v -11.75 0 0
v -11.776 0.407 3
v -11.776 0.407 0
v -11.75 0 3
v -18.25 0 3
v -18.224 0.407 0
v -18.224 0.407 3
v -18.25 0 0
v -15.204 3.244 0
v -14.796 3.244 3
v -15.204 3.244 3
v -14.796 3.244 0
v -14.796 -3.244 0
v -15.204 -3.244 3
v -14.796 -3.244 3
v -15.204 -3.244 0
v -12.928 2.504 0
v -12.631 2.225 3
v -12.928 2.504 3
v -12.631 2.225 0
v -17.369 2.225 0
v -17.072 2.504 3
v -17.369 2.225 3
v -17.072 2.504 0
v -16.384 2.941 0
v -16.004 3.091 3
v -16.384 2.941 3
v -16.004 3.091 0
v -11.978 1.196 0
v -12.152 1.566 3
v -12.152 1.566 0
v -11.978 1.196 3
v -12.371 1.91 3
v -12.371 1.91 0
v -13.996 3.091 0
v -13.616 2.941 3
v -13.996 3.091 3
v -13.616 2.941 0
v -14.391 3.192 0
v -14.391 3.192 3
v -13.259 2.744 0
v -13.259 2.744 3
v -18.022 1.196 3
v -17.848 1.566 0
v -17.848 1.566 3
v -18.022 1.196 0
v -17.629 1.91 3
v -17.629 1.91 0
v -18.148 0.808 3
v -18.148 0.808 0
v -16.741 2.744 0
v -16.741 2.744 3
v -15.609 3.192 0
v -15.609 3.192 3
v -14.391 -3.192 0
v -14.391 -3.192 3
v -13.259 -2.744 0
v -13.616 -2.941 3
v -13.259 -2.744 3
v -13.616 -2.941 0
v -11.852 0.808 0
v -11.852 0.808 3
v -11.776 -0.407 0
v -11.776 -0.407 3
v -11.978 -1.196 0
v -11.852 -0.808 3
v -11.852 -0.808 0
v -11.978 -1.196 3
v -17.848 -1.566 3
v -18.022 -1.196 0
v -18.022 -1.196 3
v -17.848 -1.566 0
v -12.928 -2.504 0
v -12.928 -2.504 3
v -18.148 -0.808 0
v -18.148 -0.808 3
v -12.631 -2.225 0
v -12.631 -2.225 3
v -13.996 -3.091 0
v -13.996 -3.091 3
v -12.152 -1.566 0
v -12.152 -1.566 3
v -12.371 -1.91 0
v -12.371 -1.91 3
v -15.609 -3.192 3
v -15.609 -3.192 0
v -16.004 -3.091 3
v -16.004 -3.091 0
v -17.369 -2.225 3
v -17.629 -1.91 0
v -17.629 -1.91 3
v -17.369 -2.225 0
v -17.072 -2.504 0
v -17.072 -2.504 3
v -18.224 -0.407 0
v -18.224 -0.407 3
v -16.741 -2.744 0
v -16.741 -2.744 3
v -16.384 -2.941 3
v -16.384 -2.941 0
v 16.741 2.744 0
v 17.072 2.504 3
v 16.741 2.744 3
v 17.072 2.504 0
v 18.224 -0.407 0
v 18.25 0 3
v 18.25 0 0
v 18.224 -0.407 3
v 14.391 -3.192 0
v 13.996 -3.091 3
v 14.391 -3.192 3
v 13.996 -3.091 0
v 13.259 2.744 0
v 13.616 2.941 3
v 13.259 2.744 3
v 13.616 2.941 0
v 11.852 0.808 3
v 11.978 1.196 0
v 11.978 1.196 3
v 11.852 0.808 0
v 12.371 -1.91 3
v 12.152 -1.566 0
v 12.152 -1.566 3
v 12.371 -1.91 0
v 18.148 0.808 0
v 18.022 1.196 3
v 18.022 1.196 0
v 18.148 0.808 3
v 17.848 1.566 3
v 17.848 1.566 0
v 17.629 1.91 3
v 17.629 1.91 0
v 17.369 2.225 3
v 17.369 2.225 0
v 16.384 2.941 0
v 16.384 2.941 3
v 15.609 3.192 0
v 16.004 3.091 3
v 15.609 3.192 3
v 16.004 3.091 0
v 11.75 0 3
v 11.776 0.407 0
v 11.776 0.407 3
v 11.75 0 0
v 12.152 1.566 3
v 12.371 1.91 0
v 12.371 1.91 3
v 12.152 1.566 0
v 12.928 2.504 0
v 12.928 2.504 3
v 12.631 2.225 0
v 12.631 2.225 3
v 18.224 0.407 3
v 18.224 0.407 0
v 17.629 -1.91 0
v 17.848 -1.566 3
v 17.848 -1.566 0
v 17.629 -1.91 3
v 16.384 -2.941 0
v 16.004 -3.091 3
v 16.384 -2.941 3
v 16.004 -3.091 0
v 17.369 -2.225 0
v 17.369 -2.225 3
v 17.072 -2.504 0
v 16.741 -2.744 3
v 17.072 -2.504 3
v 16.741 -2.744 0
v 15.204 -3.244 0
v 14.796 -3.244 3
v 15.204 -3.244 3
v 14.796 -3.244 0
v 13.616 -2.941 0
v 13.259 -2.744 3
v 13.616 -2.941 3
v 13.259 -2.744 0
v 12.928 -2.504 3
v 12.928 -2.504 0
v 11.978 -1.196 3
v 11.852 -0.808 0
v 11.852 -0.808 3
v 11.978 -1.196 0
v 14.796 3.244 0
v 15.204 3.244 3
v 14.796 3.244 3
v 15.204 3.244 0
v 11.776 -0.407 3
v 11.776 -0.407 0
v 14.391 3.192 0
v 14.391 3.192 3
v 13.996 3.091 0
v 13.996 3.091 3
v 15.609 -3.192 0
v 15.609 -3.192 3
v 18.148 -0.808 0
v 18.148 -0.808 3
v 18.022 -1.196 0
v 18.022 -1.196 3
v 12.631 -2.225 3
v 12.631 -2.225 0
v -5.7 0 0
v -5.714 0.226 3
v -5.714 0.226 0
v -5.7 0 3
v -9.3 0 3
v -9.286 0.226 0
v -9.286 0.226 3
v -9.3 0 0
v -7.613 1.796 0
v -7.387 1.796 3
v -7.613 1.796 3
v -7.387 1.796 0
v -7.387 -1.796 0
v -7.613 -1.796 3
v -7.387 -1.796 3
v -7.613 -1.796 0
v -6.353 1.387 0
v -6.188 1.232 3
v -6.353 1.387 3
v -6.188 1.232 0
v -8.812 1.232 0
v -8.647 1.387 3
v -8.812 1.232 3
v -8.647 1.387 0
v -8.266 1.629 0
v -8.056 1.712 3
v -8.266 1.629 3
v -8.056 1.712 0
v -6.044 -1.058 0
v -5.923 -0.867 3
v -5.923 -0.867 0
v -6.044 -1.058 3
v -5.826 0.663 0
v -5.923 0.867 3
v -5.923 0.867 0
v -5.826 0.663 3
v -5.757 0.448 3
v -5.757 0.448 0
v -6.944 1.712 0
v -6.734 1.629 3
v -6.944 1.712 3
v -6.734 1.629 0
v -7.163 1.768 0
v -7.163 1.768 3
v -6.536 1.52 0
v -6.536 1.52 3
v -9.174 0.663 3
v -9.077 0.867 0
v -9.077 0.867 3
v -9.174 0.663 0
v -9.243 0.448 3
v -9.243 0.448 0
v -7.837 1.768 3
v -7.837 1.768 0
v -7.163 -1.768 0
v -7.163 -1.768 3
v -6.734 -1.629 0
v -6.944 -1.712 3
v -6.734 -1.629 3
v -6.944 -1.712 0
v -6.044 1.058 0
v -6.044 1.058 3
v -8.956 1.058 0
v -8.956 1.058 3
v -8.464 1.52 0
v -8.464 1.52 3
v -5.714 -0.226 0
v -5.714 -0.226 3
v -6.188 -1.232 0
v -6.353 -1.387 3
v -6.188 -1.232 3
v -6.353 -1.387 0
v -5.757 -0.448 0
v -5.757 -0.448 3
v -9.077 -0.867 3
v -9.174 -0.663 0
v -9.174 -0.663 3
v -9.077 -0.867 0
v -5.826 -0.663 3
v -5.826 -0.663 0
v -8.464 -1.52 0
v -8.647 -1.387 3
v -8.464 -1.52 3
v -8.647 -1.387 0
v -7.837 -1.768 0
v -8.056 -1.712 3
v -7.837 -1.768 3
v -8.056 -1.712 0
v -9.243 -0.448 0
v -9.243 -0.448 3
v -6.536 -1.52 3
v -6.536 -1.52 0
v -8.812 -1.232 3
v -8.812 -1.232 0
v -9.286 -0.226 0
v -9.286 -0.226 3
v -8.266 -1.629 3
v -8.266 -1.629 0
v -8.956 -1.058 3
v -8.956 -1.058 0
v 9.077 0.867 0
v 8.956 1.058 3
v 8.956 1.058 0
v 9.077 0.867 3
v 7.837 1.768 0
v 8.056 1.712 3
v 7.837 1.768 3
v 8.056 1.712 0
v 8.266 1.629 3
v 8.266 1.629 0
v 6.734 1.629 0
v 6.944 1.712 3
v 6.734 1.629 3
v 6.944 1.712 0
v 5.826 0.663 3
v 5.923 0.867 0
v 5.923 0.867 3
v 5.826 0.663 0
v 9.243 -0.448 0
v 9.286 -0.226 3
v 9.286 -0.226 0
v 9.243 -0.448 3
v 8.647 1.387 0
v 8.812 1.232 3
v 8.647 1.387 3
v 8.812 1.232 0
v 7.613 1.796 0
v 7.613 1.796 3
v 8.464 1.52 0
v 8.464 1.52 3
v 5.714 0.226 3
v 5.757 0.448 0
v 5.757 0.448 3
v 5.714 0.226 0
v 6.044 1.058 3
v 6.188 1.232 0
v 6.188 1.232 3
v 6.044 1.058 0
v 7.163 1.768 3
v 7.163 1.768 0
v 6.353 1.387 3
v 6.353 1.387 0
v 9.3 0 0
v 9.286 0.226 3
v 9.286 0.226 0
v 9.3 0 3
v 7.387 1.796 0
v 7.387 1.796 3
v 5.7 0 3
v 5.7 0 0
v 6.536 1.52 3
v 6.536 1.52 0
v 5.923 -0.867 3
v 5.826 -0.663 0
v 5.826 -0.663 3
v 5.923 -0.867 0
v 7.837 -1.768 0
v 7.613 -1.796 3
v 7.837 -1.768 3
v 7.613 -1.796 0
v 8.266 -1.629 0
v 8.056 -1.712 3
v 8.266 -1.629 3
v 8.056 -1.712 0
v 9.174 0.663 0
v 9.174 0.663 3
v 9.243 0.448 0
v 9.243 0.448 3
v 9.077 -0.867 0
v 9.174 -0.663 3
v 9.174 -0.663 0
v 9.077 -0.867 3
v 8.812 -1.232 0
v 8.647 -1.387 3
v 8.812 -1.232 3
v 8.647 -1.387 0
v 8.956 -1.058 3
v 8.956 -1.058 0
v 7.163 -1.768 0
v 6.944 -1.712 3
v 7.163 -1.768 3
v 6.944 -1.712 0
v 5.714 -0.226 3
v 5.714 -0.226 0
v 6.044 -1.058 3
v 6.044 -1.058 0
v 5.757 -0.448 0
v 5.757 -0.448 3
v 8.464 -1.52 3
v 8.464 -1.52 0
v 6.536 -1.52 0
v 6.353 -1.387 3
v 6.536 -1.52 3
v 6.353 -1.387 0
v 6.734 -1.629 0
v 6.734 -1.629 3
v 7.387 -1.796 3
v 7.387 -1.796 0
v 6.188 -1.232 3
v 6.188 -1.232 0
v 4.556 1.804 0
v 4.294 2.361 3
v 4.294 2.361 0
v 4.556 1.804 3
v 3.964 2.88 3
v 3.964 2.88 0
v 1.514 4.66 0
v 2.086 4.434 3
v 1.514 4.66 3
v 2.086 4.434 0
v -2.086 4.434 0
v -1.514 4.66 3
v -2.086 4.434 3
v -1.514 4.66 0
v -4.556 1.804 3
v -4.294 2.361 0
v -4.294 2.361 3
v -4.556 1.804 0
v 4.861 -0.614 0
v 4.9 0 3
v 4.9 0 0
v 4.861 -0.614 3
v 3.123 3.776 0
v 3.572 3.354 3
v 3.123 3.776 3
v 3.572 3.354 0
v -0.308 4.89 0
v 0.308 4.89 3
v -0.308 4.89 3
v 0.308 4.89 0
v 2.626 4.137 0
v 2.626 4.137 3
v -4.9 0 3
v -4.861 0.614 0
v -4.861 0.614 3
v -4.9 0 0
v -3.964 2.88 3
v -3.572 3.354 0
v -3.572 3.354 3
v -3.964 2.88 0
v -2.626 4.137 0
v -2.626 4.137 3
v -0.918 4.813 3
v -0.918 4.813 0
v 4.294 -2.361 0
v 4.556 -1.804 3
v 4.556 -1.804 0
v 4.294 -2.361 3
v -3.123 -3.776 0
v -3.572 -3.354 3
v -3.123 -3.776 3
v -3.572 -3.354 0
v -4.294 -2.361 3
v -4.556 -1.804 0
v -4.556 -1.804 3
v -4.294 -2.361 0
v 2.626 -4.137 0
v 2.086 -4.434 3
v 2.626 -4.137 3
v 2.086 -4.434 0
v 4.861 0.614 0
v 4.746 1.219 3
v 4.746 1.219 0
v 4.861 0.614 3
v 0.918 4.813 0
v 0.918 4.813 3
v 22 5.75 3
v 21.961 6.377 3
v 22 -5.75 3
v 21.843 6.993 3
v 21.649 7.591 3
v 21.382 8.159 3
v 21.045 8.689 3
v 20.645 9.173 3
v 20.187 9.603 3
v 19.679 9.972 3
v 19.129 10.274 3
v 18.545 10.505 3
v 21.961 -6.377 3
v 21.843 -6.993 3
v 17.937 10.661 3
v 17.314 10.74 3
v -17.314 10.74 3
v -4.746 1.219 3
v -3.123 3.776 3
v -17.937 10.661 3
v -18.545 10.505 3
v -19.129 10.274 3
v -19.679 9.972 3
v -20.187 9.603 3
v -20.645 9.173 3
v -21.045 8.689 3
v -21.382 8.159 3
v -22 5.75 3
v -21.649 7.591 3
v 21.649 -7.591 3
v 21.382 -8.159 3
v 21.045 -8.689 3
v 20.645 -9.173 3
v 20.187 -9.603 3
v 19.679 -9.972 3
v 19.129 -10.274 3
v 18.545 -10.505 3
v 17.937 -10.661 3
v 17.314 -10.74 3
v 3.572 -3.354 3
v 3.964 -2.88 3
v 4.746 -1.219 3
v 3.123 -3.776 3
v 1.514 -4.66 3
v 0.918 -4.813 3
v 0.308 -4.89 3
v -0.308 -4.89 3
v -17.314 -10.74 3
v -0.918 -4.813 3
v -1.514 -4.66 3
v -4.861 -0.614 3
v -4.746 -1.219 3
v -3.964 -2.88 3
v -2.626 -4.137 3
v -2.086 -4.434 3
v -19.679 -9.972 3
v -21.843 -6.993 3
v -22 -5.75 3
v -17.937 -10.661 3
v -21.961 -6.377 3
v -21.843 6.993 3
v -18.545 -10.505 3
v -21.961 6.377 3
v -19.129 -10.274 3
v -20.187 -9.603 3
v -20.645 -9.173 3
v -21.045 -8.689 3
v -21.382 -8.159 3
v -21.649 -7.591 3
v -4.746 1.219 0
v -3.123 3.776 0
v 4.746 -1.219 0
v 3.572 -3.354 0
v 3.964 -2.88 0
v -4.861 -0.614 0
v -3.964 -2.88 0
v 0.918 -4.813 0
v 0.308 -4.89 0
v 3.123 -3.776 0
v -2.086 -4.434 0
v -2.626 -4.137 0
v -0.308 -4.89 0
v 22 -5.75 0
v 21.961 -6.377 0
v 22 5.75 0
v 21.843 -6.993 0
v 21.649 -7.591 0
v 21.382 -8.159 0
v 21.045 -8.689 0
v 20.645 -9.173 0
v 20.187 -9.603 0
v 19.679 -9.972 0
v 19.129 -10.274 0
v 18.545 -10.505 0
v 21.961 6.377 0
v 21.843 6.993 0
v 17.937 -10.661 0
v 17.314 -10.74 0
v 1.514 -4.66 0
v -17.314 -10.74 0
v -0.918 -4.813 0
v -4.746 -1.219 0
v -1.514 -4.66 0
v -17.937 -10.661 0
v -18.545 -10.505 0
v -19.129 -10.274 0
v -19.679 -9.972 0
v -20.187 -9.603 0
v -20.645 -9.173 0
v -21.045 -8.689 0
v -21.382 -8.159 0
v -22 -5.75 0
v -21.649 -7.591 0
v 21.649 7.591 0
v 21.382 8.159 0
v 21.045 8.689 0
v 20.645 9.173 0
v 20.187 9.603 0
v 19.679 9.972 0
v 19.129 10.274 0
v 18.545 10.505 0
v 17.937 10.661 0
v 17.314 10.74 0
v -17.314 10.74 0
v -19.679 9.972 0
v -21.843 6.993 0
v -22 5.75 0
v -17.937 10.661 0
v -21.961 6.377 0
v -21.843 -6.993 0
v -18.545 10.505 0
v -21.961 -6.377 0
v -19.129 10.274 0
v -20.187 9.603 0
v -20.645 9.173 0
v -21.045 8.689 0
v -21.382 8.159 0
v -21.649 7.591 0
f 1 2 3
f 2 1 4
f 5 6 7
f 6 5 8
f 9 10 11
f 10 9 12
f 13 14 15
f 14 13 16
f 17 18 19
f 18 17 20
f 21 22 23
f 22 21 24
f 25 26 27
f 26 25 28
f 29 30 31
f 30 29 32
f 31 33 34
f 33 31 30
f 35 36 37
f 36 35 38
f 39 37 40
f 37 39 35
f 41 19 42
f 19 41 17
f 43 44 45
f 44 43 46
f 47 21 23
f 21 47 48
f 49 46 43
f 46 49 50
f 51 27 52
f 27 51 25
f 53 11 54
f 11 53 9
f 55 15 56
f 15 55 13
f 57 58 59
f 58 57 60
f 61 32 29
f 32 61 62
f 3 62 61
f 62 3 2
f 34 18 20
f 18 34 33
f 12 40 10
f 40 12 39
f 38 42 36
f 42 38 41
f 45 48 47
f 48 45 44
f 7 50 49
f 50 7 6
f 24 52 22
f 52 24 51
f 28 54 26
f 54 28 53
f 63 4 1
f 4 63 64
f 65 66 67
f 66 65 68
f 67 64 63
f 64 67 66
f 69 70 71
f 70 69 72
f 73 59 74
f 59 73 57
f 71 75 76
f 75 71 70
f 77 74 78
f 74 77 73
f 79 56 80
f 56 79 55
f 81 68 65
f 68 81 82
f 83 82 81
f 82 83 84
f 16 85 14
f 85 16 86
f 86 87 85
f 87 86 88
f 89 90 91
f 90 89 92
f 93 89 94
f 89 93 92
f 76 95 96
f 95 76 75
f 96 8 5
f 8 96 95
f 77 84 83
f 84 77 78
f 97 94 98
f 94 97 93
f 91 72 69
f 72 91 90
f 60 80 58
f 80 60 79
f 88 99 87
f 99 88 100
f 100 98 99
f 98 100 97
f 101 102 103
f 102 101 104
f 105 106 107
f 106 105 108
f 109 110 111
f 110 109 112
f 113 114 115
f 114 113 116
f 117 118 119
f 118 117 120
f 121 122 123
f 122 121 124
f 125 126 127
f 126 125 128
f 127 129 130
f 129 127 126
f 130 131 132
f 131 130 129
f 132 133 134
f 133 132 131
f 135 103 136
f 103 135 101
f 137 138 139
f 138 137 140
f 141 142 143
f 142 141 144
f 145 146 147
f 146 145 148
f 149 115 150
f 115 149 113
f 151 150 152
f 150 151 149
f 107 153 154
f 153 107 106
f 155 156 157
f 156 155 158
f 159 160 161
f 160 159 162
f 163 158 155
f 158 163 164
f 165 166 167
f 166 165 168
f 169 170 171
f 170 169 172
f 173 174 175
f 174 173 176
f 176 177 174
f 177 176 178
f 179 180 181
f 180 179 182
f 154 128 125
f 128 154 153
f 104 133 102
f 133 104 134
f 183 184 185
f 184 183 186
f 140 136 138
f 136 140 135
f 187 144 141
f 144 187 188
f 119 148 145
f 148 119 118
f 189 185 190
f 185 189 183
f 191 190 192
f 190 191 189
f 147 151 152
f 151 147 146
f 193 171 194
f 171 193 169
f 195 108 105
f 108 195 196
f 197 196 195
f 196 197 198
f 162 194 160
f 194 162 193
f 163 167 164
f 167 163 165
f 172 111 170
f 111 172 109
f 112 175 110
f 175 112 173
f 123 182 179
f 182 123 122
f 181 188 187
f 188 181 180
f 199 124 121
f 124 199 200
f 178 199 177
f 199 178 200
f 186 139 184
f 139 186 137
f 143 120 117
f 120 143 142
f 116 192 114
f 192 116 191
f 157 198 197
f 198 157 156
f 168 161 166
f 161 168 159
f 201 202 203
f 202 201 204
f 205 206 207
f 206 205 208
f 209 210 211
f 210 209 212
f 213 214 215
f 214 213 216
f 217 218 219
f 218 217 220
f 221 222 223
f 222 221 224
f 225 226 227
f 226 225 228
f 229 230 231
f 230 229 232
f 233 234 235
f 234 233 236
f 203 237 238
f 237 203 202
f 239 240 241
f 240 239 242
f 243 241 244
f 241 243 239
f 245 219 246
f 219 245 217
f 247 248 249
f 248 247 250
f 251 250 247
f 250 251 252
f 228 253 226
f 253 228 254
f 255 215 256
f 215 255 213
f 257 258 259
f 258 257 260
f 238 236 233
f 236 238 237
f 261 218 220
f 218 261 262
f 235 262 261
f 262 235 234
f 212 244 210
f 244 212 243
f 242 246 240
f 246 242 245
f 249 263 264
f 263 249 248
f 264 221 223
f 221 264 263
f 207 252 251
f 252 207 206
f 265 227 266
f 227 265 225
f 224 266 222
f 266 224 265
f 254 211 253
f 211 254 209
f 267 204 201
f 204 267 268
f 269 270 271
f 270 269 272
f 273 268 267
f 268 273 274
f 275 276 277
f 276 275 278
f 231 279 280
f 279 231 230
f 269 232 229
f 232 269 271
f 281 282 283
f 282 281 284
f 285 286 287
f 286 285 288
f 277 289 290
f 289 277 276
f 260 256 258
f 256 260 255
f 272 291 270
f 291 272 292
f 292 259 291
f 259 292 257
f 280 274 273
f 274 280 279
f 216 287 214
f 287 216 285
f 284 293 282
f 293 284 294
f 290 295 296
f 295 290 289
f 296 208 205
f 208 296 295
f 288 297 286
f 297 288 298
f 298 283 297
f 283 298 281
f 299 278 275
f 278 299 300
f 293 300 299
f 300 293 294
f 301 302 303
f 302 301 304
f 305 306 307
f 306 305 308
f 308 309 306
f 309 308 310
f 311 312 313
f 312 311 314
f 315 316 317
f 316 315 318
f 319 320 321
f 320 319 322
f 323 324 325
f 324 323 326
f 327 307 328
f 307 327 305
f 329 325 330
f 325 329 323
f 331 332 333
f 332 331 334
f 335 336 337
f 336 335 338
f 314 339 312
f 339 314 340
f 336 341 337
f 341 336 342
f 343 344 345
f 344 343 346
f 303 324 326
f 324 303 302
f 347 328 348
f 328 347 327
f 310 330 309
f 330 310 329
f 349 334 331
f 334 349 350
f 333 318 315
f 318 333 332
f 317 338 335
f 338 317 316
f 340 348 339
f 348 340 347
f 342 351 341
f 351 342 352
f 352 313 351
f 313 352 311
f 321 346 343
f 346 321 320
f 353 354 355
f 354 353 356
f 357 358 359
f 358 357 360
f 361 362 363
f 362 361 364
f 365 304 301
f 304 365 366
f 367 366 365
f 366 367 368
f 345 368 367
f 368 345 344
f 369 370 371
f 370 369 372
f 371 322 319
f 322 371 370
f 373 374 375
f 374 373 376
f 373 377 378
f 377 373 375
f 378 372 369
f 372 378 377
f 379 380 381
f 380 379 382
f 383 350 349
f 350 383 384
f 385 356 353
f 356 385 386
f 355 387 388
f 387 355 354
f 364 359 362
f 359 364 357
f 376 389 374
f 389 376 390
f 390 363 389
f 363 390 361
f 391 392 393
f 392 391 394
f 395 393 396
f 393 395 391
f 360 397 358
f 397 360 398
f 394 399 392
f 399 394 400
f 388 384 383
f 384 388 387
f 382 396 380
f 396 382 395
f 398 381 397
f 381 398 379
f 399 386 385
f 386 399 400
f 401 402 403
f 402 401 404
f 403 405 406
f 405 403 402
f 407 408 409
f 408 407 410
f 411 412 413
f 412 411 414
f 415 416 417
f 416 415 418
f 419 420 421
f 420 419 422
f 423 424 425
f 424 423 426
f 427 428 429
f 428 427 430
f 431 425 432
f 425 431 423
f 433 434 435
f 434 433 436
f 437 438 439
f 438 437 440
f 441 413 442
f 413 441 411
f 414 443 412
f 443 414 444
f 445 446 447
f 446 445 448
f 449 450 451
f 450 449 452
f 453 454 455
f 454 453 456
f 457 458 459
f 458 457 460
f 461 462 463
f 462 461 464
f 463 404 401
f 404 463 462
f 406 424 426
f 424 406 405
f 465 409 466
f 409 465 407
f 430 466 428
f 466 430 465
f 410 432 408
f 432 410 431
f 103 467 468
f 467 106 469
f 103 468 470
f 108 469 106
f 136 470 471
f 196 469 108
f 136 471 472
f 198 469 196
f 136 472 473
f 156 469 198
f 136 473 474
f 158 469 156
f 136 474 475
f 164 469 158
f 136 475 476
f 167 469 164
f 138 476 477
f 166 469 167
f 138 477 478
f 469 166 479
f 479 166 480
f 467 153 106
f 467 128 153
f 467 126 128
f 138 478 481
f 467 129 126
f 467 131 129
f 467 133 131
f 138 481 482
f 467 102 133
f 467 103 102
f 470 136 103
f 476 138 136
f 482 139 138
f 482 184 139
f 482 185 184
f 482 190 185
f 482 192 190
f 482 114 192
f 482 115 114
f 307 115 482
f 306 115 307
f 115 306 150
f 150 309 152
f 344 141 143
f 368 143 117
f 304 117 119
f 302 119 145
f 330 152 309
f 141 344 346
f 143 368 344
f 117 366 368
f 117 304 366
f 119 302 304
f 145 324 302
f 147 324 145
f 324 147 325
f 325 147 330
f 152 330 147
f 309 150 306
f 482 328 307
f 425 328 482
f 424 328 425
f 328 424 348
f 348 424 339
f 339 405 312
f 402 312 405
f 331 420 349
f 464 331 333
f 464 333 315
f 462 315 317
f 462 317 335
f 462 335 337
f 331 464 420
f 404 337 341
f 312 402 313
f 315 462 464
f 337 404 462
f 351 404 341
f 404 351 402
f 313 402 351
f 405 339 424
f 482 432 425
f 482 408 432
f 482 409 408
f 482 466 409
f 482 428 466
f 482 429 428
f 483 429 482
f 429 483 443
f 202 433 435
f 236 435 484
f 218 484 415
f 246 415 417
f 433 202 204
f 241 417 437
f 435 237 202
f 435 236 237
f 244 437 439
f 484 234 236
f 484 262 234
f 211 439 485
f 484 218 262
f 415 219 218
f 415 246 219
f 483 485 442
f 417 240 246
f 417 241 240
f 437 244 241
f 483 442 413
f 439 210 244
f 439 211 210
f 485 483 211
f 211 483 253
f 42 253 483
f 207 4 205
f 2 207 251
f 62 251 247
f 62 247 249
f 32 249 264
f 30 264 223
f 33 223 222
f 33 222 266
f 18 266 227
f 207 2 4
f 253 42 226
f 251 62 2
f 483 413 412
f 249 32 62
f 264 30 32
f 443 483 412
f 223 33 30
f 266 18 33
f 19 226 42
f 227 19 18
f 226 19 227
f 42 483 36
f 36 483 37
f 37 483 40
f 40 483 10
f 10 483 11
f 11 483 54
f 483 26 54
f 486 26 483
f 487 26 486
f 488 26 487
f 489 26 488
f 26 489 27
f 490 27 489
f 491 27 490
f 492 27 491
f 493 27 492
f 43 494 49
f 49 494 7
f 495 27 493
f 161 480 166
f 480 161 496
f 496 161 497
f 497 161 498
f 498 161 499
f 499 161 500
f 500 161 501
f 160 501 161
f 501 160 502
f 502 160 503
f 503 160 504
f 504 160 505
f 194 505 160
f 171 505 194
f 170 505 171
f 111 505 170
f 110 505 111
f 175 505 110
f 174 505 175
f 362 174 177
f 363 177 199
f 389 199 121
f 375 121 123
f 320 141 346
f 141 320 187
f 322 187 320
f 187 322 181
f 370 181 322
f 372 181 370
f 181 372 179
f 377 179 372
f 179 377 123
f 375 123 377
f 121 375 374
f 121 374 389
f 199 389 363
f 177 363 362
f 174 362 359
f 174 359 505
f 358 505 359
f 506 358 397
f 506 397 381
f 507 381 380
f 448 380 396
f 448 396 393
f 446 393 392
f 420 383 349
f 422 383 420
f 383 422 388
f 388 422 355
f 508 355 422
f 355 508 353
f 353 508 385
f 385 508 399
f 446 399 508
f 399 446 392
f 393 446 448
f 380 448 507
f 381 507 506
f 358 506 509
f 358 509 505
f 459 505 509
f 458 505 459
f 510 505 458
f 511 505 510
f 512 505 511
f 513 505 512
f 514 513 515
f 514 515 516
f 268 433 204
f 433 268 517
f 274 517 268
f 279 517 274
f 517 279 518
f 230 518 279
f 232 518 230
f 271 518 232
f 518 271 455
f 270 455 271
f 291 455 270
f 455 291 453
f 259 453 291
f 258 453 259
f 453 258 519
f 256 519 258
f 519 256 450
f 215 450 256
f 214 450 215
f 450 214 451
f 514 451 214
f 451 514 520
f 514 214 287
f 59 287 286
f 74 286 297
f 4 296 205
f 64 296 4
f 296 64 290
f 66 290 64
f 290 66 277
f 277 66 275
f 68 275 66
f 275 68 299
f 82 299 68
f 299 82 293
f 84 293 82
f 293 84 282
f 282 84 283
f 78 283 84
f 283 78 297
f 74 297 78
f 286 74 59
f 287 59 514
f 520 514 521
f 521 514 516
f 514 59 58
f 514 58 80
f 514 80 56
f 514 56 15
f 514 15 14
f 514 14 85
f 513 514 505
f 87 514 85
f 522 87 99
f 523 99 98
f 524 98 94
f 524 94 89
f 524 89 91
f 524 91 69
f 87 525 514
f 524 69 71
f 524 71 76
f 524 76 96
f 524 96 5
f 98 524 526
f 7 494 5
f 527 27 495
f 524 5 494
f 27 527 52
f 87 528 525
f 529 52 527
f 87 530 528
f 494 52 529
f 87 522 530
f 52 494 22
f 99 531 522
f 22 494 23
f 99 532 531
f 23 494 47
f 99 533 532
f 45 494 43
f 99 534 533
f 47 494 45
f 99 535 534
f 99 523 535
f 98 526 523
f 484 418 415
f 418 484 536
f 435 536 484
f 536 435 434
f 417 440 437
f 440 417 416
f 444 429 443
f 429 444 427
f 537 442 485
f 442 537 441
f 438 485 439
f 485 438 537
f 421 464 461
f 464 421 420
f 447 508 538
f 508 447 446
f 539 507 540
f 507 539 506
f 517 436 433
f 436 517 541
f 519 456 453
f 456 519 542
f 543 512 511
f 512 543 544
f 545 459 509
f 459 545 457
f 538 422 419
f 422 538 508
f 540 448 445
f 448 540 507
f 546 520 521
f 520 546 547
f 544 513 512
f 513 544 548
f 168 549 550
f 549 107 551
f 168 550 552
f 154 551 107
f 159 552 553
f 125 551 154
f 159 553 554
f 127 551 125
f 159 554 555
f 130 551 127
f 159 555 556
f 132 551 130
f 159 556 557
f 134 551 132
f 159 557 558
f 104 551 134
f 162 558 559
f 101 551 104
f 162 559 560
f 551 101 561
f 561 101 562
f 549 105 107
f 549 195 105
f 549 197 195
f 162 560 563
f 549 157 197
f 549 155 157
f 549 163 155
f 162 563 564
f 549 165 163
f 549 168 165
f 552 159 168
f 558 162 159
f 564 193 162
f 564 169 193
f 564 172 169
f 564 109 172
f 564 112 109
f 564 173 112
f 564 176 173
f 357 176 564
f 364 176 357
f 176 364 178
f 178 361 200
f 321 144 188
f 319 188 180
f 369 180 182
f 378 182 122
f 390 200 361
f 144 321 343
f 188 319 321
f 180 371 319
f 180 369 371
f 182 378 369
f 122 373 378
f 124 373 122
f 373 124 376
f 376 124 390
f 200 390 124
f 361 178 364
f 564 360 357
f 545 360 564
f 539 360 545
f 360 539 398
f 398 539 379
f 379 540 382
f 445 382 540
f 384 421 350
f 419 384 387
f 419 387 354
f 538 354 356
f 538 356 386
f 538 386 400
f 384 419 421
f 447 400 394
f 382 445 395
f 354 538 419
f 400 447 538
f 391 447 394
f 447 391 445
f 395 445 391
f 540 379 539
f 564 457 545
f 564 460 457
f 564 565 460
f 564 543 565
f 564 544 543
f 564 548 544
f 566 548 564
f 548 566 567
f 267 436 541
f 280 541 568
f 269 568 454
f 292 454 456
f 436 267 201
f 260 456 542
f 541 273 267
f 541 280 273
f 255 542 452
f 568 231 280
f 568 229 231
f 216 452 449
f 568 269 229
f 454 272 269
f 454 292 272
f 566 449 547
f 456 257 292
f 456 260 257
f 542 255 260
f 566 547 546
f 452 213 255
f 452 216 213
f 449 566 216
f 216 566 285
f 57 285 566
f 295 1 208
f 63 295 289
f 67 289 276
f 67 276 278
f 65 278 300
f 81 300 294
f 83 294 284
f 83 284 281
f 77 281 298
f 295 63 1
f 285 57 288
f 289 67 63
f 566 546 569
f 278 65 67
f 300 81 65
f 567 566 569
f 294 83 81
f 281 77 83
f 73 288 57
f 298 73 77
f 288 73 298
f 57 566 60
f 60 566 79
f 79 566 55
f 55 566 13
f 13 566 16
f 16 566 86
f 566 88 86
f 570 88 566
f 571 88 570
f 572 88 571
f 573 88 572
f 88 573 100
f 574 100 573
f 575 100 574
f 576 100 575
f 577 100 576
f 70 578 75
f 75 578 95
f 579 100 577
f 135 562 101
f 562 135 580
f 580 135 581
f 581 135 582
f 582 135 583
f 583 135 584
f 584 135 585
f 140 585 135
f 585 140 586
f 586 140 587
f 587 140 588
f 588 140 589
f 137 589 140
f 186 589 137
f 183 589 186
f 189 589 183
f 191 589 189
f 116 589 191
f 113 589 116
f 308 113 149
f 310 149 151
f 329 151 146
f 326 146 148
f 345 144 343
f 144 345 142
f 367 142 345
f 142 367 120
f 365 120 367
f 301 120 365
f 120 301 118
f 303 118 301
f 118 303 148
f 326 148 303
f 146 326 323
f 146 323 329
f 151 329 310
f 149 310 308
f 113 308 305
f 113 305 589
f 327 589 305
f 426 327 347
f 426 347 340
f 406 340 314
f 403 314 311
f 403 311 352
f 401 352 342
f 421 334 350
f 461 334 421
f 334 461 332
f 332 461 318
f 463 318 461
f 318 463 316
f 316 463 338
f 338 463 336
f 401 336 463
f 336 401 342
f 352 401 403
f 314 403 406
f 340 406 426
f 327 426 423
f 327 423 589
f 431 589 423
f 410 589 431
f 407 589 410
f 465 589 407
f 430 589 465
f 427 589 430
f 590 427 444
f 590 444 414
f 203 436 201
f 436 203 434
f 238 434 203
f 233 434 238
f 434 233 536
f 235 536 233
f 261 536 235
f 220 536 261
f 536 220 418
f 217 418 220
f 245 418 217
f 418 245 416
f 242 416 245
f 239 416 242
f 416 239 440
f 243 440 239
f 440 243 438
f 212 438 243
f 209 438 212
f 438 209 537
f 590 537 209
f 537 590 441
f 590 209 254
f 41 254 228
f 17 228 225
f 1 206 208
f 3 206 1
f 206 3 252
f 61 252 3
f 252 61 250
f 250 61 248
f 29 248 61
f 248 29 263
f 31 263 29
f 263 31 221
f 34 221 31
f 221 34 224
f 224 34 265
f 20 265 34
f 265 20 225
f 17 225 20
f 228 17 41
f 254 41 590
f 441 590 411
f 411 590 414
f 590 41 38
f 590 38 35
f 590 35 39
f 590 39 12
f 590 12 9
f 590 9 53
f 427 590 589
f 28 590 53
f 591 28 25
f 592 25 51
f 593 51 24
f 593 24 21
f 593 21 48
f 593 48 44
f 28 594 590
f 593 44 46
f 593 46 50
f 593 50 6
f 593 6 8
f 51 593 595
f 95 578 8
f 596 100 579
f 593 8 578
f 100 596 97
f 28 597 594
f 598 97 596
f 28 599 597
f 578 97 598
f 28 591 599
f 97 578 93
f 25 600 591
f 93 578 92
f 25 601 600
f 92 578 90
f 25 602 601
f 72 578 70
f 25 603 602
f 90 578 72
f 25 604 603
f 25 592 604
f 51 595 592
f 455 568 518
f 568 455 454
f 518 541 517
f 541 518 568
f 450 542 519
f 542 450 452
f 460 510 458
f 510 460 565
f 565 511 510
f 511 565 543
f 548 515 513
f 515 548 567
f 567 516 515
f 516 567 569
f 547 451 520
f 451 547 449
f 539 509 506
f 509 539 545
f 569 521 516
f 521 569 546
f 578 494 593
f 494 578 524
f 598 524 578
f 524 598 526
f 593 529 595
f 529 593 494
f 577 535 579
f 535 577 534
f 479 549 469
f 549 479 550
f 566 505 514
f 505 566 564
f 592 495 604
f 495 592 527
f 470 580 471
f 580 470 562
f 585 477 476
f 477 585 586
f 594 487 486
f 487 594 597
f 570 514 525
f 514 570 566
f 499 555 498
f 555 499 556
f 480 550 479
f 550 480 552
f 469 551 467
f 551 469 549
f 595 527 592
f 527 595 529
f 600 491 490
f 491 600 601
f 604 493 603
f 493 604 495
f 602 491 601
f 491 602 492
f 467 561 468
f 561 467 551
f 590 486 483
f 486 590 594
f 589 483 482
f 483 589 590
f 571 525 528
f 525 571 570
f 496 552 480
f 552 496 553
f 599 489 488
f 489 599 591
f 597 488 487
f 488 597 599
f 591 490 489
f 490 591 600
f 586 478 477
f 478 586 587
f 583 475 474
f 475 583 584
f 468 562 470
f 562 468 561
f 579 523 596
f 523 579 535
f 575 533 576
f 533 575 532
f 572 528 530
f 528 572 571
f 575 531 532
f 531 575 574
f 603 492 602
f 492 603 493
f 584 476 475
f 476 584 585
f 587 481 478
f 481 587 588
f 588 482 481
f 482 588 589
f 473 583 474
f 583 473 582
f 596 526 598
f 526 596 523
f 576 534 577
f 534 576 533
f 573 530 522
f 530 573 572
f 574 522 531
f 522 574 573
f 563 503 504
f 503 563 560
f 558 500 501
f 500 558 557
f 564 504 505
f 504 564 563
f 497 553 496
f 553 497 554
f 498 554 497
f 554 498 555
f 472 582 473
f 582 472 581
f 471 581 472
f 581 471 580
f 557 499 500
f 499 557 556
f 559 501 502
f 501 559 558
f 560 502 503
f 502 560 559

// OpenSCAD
$fn = 50;


difference() {
	union() {
		hull() {
			translate(v = [-17.0000000000, 5.7500000000, 0]) {
				cylinder(h = 3, r = 5);
			}
			translate(v = [17.0000000000, 5.7500000000, 0]) {
				cylinder(h = 3, r = 5);
			}
			translate(v = [-17.0000000000, -5.7500000000, 0]) {
				cylinder(h = 3, r = 5);
			}
			translate(v = [17.0000000000, -5.7500000000, 0]) {
				cylinder(h = 3, r = 5);
			}
		}
	}
	union() {
		translate(v = [-15.0000000000, 0.0000000000, -100.0000000000]) {
			cylinder(h = 200, r = 3.2500000000);
		}
		translate(v = [15.0000000000, 0.0000000000, -100.0000000000]) {
			cylinder(h = 200, r = 3.2500000000);
		}
		translate(v = [-15.0000000000, 0.0000000000, -100.0000000000]) {
			cylinder(h = 200, r = 3.2500000000);
		}
		translate(v = [0.0000000000, 0.0000000000, -100.0000000000]) {
			cylinder(h = 200, r = 3.2500000000);
		}
		translate(v = [15.0000000000, 0.0000000000, -100.0000000000]) {
			cylinder(h = 200, r = 3.2500000000);
		}
		translate(v = [15.0000000000, 0.0000000000, -100.0000000000]) {
			cylinder(h = 200, r = 3.2500000000);
		}
		translate(v = [-15.0000000000, 0.0000000000, -100.0000000000]) {
			cylinder(h = 200, r = 1.8000000000);
		}
		translate(v = [15.0000000000, 0.0000000000, -100.0000000000]) {
			cylinder(h = 200, r = 1.8000000000);
		}
		translate(v = [-15.0000000000, 0.0000000000, -100.0000000000]) {
			cylinder(h = 200, r = 1.8000000000);
		}
		translate(v = [-7.5000000000, 0.0000000000, -100.0000000000]) {
			cylinder(h = 200, r = 1.8000000000);
		}
		translate(v = [0.0000000000, 0.0000000000, -100.0000000000]) {
			cylinder(h = 200, r = 1.8000000000);
		}
		translate(v = [7.5000000000, 0.0000000000, -100.0000000000]) {
			cylinder(h = 200, r = 1.8000000000);
		}
		translate(v = [15.0000000000, 0.0000000000, -100.0000000000]) {
			cylinder(h = 200, r = 1.8000000000);
		}
		translate(v = [-15.0000000000, 0.0000000000, -100.0000000000]) {
			cylinder(h = 200, r = 1.8000000000);
		}
		translate(v = [15.0000000000, 0.0000000000, -100.0000000000]) {
			cylinder(h = 200, r = 1.8000000000);
		}
		translate(v = [-15.0000000000, 0.0000000000, -100.0000000000]) {
			cylinder(h = 200, r = 1.8000000000);
		}
		translate(v = [-7.5000000000, 0.0000000000, -100.0000000000]) {
			cylinder(h = 200, r = 1.8000000000);
		}
		translate(v = [0.0000000000, 0.0000000000, -100.0000000000]) {
			cylinder(h = 200, r = 1.8000000000);
		}
		translate(v = [7.5000000000, 0.0000000000, -100.0000000000]) {
			cylinder(h = 200, r = 1.8000000000);
		}
		translate(v = [15.0000000000, 0.0000000000, -100.0000000000]) {
			cylinder(h = 200, r = 1.8000000000);
		}
		translate(v = [-15.0000000000, 0.0000000000, -100.0000000000]) {
			cylinder(h = 200, r = 1.8000000000);
		}
		translate(v = [15.0000000000, 0.0000000000, -100.0000000000]) {
			cylinder(h = 200, r = 1.8000000000);
		}
		translate(v = [-15.0000000000, 0.0000000000, -100.0000000000]) {
			cylinder(h = 200, r = 1.8000000000);
		}
		translate(v = [-7.5000000000, 0.0000000000, -100.0000000000]) {
			cylinder(h = 200, r = 1.8000000000);
		}
		translate(v = [0.0000000000, 0.0000000000, -100.0000000000]) {
			cylinder(h = 200, r = 1.8000000000);
		}
		translate(v = [7.5000000000, 0.0000000000, -100.0000000000]) {
			cylinder(h = 200, r = 1.8000000000);
		}
		translate(v = [15.0000000000, 0.0000000000, -100.0000000000]) {
			cylinder(h = 200, r = 1.8000000000);
		}
		#cylinder(h = 3, r = 4.9000000000);
	}
}
